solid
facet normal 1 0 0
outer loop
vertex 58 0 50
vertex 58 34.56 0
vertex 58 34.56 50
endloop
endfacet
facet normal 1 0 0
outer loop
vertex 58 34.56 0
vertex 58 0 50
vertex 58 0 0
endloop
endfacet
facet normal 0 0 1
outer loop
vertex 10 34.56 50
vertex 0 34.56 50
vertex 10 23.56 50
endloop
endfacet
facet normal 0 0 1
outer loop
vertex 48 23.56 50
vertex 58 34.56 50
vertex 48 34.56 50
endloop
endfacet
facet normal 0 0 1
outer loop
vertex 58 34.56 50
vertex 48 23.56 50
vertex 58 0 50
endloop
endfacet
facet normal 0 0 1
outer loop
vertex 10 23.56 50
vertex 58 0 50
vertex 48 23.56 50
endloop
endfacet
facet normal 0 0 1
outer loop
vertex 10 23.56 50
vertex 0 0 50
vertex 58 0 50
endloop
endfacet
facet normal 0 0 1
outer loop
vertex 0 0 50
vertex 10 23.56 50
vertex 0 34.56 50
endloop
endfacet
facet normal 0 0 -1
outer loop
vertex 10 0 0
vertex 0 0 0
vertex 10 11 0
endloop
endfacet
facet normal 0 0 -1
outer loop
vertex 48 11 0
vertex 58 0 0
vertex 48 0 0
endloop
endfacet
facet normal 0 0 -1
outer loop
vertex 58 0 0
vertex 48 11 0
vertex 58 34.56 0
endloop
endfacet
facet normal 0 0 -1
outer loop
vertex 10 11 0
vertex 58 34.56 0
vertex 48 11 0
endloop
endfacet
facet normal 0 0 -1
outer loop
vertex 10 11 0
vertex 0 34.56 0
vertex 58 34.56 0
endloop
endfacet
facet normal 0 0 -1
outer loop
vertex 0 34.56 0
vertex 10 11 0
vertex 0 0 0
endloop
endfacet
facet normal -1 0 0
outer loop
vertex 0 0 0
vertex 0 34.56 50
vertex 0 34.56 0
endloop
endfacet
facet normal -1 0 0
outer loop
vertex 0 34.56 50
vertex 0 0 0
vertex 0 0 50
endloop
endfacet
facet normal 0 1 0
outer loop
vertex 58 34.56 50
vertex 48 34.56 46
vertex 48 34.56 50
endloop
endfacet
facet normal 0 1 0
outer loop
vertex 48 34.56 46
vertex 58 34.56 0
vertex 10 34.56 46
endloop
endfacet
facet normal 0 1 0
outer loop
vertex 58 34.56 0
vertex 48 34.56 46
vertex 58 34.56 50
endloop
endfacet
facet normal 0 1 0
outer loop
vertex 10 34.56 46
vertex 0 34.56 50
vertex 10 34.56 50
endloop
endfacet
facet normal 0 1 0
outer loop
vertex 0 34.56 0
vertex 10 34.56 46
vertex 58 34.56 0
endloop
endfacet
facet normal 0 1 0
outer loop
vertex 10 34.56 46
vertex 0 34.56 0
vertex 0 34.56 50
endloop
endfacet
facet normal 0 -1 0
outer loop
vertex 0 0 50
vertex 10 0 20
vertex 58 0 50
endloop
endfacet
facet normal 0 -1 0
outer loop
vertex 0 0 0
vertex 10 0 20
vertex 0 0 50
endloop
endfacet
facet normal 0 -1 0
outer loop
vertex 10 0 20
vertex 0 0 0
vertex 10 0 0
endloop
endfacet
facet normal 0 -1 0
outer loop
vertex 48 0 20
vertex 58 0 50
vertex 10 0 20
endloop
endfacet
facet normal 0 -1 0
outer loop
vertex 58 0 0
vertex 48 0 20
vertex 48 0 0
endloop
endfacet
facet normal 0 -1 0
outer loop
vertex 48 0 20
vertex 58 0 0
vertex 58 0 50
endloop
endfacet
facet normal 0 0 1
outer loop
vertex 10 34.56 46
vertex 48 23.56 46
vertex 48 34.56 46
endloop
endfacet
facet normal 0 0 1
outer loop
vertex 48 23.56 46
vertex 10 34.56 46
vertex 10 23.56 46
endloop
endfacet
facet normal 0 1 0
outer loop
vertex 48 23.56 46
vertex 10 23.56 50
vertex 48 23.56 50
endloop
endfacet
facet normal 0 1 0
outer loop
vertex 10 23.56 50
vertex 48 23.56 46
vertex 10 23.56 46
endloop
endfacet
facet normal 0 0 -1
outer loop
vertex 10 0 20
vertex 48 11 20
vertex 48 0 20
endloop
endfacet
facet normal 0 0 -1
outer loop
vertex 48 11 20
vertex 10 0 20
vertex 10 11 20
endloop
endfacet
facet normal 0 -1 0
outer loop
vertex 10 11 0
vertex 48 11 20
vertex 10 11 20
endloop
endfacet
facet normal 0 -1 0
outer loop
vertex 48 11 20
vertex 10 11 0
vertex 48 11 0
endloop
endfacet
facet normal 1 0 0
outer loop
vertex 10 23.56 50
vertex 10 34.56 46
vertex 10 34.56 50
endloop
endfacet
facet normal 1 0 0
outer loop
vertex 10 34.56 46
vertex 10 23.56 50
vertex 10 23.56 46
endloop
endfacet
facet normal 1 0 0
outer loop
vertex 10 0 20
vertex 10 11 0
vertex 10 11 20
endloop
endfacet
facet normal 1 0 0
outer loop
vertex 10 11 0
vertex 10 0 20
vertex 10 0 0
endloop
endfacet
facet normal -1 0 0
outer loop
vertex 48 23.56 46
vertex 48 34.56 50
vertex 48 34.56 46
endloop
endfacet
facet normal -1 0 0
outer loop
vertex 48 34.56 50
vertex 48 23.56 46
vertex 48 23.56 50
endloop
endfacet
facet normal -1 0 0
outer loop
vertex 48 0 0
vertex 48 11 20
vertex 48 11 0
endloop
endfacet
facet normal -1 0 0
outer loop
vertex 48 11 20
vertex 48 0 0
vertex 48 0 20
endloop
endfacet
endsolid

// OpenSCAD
$fn=100;

function shave(x)= x - 0;

tongue_length = 38;
tongue_width = 11;  //9.13

max_length = tongue_length + 20;
max_height = 50.0; // 30, 20
max_width = 34.56;


raise1 = 30;
raise2 = 46;

difference ()
{
    cube([shave(max_length), shave(max_width), shave(max_height) ]);

    translate([ 0, max_width - tongue_width, raise2])
    cube([max_length, tongue_width, max_height ]);
    
    translate([ 0, 0, 0])
    cube([max_length, tongue_width, max_height - raise1 ]);
    
}

ear_length = (max_length - tongue_length)/2;
cube([ear_length, max_width, max_height]);

translate([max_length - ear_length, 0, 0])
cube([ear_length, max_width, max_height]);
